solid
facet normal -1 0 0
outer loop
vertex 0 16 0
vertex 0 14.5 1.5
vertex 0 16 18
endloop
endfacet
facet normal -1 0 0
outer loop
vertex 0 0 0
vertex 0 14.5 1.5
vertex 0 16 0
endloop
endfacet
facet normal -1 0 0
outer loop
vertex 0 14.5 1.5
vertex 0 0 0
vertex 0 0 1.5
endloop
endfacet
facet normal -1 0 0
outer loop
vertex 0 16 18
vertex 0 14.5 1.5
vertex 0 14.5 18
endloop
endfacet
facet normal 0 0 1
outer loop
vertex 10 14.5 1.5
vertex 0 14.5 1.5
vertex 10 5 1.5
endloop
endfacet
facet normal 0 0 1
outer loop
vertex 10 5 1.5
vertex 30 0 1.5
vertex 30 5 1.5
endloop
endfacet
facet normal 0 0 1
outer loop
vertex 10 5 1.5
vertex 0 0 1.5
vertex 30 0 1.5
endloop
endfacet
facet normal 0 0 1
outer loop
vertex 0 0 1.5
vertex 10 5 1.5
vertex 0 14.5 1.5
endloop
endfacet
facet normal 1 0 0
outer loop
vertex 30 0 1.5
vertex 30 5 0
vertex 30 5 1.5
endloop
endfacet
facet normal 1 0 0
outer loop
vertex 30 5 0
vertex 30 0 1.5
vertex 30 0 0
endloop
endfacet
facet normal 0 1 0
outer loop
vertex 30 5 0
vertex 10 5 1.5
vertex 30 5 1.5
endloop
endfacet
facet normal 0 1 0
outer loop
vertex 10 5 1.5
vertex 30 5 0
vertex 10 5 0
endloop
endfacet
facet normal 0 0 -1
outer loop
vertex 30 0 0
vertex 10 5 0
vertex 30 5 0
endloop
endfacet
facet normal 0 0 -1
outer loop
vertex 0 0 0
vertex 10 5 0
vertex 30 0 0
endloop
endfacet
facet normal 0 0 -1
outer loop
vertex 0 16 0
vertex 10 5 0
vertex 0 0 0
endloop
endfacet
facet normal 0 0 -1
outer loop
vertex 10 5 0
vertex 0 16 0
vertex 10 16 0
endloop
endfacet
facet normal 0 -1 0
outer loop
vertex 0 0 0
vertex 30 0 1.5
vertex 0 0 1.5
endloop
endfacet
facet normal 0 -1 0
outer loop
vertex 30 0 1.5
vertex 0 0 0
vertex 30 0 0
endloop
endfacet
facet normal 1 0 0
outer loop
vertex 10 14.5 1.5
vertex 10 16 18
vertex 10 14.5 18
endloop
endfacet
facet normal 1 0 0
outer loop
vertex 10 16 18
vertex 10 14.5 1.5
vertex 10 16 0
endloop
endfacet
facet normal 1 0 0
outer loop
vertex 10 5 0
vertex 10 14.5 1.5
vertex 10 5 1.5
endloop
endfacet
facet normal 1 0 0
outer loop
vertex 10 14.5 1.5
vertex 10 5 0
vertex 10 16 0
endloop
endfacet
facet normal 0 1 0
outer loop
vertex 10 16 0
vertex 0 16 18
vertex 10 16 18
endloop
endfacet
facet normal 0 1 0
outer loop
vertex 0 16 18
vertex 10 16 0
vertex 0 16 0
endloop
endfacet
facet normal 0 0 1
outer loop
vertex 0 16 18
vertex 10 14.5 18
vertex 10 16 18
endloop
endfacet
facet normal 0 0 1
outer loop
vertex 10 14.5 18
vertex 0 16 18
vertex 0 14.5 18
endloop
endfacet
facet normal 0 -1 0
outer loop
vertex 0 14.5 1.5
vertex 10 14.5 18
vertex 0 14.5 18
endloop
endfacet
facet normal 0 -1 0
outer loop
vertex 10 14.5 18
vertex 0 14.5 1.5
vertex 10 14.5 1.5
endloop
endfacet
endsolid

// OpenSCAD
$fa=5; $fs=0.1;

cube([30, 5, 1.5]);
cube([10, 16, 1.5]);
translate([0, 14.5, 0]) cube ([10, 1.5, 18]);
